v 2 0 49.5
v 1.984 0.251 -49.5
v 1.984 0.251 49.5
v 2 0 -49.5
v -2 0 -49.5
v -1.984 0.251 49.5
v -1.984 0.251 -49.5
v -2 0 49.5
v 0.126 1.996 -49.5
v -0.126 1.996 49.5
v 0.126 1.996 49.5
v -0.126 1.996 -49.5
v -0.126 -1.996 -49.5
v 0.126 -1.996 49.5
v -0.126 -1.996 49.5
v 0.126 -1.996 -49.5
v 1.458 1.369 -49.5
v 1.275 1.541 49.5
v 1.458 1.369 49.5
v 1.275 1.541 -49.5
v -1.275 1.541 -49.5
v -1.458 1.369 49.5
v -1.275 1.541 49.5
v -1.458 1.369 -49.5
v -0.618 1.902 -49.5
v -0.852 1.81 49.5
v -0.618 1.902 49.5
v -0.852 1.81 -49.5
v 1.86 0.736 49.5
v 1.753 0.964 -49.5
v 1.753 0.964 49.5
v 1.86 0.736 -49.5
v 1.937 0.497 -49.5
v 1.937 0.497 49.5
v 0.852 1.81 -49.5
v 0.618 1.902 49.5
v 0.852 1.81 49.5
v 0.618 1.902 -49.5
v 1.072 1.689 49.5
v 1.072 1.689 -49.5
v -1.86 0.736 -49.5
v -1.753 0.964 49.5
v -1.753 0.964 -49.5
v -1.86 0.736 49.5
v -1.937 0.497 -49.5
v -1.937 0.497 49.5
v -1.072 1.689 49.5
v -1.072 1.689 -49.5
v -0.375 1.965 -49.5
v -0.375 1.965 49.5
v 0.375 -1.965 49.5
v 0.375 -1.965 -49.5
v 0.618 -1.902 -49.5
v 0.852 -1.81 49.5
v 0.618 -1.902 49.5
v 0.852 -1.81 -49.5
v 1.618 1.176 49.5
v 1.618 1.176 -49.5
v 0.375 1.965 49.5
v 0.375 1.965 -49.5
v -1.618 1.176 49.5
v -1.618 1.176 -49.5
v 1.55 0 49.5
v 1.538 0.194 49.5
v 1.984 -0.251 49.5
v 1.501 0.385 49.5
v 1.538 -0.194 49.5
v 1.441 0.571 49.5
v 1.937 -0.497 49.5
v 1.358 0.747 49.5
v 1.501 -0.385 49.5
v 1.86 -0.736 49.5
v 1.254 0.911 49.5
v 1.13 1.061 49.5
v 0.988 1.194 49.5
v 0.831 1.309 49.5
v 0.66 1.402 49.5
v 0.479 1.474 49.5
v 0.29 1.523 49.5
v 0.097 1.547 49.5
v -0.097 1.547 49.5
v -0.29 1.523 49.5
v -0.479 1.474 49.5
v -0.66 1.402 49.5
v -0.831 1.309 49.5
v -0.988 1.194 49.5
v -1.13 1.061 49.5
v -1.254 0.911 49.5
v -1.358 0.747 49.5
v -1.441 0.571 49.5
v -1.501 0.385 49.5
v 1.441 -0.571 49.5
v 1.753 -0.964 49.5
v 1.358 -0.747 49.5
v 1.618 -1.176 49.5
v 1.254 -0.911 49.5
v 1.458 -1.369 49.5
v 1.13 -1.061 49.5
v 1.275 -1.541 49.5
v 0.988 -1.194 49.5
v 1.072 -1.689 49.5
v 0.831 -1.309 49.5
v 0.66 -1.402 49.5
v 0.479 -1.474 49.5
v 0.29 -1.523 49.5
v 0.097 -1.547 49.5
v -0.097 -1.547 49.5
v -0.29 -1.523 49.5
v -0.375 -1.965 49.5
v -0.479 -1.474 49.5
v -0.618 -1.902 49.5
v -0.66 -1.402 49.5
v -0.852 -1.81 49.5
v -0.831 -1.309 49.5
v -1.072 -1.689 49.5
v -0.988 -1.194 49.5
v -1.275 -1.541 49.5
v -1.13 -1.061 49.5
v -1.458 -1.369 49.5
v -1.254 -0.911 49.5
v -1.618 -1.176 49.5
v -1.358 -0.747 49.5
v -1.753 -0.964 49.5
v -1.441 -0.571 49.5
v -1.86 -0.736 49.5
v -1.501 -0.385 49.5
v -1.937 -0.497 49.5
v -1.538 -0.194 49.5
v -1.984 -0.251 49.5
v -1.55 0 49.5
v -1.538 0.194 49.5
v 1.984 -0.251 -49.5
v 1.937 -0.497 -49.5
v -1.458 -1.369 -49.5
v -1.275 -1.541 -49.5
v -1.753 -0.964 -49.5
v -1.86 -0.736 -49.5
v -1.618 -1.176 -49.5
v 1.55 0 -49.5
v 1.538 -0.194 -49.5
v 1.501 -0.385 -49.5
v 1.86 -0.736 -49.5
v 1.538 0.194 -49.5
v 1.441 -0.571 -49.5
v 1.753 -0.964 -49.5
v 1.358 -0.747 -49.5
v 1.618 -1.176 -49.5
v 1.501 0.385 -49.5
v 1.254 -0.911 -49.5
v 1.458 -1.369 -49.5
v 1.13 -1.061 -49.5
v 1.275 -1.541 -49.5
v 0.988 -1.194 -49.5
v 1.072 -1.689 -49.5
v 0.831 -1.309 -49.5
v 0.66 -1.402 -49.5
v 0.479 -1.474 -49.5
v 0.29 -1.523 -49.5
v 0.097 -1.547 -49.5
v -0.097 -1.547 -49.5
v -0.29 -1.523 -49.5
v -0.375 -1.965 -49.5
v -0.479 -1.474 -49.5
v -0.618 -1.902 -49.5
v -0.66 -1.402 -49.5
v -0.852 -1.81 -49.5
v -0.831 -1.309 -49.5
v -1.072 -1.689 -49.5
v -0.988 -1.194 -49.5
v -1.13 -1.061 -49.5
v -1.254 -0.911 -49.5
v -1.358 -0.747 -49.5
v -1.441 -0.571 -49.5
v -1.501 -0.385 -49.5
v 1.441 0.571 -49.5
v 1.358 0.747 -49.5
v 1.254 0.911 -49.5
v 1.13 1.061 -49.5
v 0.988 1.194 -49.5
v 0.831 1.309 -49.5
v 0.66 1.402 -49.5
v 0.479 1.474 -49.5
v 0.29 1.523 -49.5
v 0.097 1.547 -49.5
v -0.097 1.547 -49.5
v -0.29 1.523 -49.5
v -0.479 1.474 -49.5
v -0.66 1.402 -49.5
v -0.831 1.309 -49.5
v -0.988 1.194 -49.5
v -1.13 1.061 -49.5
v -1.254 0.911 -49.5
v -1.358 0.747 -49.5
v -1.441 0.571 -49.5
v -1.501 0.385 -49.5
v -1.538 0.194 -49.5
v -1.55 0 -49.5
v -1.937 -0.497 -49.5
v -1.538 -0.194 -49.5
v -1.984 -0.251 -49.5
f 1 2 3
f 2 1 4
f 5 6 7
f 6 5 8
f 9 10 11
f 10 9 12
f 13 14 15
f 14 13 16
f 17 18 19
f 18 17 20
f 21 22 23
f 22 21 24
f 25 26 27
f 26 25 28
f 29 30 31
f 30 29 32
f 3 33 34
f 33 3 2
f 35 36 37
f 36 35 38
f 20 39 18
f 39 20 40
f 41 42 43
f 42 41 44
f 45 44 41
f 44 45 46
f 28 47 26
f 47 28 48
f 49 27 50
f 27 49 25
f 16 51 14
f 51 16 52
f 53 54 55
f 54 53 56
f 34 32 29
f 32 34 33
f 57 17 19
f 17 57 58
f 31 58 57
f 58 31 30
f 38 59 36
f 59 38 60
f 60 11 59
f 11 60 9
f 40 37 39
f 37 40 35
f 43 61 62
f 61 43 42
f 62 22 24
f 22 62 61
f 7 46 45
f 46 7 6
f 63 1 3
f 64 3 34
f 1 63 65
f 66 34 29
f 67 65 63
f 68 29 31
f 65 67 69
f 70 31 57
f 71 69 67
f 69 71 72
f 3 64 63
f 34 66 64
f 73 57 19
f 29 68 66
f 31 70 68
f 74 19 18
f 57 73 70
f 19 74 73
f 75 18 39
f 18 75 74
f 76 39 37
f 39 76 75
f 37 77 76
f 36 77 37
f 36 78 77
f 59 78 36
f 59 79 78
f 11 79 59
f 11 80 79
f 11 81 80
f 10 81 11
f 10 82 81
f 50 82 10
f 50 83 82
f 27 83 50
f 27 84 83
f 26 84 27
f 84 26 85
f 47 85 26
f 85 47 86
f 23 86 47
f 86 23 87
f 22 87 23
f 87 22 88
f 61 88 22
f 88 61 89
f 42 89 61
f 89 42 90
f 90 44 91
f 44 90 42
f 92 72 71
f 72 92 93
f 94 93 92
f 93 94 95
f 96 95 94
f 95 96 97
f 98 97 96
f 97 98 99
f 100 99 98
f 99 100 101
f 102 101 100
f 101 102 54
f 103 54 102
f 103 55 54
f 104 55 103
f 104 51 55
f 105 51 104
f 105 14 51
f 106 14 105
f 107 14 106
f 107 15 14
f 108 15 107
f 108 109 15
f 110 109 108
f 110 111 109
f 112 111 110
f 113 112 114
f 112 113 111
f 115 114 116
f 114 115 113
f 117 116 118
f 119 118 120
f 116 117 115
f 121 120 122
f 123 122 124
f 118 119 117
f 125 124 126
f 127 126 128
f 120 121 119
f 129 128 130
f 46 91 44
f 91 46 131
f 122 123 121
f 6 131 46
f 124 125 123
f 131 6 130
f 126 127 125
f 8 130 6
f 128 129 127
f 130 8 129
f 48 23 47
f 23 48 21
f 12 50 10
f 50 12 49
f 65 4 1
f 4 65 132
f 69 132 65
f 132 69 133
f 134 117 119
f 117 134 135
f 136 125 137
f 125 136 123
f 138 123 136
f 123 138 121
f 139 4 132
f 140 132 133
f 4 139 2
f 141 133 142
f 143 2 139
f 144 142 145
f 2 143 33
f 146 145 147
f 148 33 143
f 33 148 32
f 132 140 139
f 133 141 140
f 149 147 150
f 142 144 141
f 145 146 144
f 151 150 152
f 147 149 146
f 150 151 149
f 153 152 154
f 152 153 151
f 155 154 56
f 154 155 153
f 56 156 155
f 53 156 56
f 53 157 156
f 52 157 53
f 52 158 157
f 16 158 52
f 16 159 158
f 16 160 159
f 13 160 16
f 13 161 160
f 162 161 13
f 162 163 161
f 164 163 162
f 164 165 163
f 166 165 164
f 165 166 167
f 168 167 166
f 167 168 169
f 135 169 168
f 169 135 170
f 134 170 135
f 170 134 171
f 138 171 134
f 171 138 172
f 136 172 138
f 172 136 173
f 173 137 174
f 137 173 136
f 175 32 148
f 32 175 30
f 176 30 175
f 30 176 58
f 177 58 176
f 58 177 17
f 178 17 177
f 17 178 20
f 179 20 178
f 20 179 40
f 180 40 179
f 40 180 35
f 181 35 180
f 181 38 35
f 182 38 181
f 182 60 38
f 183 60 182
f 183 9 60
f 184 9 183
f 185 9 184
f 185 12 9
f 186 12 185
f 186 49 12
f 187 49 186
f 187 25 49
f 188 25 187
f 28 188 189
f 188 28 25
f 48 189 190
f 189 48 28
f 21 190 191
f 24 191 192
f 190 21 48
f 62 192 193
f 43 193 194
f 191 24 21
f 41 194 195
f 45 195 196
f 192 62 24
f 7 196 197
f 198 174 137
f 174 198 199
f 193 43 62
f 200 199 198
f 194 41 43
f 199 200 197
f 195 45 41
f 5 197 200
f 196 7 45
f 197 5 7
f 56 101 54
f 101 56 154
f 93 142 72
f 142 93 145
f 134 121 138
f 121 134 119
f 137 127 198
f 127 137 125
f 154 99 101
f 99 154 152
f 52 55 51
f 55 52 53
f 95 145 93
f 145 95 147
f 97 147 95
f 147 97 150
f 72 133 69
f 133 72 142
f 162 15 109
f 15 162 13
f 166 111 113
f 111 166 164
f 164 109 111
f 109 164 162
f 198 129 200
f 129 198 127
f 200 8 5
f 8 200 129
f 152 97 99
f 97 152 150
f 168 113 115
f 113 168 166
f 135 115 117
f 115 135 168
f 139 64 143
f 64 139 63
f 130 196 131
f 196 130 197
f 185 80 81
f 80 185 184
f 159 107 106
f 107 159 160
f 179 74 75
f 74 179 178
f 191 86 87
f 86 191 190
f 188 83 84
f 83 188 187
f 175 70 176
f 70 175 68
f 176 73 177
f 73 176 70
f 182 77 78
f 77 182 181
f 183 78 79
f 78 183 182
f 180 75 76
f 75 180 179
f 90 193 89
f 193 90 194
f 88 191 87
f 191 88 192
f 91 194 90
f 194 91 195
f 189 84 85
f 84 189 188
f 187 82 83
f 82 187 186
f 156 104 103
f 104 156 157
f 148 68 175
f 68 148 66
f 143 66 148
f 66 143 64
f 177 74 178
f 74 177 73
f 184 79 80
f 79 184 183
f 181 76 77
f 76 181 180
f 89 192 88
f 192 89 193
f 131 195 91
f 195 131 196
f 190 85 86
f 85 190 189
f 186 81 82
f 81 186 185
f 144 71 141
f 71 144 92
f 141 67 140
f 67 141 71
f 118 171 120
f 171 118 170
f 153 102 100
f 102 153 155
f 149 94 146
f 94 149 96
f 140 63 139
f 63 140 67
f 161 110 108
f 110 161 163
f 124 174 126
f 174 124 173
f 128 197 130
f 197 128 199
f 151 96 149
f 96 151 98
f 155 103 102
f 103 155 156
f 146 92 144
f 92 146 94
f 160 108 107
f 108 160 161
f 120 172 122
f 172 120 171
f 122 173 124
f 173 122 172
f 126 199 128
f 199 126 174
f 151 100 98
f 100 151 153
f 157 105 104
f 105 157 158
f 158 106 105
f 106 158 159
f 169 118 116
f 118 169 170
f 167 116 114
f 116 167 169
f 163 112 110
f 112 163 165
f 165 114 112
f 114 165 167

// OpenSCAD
$fn = 50;


difference() {
	union() {
		translate(v = [0, 0, -49.5000000000]) {
			cylinder(h = 99, r = 2.0000000000);
		}
	}
	union() {
		translate(v = [0, 0, -100.0000000000]) {
			cylinder(h = 200, r = 1.5500000000);
		}
	}
}
